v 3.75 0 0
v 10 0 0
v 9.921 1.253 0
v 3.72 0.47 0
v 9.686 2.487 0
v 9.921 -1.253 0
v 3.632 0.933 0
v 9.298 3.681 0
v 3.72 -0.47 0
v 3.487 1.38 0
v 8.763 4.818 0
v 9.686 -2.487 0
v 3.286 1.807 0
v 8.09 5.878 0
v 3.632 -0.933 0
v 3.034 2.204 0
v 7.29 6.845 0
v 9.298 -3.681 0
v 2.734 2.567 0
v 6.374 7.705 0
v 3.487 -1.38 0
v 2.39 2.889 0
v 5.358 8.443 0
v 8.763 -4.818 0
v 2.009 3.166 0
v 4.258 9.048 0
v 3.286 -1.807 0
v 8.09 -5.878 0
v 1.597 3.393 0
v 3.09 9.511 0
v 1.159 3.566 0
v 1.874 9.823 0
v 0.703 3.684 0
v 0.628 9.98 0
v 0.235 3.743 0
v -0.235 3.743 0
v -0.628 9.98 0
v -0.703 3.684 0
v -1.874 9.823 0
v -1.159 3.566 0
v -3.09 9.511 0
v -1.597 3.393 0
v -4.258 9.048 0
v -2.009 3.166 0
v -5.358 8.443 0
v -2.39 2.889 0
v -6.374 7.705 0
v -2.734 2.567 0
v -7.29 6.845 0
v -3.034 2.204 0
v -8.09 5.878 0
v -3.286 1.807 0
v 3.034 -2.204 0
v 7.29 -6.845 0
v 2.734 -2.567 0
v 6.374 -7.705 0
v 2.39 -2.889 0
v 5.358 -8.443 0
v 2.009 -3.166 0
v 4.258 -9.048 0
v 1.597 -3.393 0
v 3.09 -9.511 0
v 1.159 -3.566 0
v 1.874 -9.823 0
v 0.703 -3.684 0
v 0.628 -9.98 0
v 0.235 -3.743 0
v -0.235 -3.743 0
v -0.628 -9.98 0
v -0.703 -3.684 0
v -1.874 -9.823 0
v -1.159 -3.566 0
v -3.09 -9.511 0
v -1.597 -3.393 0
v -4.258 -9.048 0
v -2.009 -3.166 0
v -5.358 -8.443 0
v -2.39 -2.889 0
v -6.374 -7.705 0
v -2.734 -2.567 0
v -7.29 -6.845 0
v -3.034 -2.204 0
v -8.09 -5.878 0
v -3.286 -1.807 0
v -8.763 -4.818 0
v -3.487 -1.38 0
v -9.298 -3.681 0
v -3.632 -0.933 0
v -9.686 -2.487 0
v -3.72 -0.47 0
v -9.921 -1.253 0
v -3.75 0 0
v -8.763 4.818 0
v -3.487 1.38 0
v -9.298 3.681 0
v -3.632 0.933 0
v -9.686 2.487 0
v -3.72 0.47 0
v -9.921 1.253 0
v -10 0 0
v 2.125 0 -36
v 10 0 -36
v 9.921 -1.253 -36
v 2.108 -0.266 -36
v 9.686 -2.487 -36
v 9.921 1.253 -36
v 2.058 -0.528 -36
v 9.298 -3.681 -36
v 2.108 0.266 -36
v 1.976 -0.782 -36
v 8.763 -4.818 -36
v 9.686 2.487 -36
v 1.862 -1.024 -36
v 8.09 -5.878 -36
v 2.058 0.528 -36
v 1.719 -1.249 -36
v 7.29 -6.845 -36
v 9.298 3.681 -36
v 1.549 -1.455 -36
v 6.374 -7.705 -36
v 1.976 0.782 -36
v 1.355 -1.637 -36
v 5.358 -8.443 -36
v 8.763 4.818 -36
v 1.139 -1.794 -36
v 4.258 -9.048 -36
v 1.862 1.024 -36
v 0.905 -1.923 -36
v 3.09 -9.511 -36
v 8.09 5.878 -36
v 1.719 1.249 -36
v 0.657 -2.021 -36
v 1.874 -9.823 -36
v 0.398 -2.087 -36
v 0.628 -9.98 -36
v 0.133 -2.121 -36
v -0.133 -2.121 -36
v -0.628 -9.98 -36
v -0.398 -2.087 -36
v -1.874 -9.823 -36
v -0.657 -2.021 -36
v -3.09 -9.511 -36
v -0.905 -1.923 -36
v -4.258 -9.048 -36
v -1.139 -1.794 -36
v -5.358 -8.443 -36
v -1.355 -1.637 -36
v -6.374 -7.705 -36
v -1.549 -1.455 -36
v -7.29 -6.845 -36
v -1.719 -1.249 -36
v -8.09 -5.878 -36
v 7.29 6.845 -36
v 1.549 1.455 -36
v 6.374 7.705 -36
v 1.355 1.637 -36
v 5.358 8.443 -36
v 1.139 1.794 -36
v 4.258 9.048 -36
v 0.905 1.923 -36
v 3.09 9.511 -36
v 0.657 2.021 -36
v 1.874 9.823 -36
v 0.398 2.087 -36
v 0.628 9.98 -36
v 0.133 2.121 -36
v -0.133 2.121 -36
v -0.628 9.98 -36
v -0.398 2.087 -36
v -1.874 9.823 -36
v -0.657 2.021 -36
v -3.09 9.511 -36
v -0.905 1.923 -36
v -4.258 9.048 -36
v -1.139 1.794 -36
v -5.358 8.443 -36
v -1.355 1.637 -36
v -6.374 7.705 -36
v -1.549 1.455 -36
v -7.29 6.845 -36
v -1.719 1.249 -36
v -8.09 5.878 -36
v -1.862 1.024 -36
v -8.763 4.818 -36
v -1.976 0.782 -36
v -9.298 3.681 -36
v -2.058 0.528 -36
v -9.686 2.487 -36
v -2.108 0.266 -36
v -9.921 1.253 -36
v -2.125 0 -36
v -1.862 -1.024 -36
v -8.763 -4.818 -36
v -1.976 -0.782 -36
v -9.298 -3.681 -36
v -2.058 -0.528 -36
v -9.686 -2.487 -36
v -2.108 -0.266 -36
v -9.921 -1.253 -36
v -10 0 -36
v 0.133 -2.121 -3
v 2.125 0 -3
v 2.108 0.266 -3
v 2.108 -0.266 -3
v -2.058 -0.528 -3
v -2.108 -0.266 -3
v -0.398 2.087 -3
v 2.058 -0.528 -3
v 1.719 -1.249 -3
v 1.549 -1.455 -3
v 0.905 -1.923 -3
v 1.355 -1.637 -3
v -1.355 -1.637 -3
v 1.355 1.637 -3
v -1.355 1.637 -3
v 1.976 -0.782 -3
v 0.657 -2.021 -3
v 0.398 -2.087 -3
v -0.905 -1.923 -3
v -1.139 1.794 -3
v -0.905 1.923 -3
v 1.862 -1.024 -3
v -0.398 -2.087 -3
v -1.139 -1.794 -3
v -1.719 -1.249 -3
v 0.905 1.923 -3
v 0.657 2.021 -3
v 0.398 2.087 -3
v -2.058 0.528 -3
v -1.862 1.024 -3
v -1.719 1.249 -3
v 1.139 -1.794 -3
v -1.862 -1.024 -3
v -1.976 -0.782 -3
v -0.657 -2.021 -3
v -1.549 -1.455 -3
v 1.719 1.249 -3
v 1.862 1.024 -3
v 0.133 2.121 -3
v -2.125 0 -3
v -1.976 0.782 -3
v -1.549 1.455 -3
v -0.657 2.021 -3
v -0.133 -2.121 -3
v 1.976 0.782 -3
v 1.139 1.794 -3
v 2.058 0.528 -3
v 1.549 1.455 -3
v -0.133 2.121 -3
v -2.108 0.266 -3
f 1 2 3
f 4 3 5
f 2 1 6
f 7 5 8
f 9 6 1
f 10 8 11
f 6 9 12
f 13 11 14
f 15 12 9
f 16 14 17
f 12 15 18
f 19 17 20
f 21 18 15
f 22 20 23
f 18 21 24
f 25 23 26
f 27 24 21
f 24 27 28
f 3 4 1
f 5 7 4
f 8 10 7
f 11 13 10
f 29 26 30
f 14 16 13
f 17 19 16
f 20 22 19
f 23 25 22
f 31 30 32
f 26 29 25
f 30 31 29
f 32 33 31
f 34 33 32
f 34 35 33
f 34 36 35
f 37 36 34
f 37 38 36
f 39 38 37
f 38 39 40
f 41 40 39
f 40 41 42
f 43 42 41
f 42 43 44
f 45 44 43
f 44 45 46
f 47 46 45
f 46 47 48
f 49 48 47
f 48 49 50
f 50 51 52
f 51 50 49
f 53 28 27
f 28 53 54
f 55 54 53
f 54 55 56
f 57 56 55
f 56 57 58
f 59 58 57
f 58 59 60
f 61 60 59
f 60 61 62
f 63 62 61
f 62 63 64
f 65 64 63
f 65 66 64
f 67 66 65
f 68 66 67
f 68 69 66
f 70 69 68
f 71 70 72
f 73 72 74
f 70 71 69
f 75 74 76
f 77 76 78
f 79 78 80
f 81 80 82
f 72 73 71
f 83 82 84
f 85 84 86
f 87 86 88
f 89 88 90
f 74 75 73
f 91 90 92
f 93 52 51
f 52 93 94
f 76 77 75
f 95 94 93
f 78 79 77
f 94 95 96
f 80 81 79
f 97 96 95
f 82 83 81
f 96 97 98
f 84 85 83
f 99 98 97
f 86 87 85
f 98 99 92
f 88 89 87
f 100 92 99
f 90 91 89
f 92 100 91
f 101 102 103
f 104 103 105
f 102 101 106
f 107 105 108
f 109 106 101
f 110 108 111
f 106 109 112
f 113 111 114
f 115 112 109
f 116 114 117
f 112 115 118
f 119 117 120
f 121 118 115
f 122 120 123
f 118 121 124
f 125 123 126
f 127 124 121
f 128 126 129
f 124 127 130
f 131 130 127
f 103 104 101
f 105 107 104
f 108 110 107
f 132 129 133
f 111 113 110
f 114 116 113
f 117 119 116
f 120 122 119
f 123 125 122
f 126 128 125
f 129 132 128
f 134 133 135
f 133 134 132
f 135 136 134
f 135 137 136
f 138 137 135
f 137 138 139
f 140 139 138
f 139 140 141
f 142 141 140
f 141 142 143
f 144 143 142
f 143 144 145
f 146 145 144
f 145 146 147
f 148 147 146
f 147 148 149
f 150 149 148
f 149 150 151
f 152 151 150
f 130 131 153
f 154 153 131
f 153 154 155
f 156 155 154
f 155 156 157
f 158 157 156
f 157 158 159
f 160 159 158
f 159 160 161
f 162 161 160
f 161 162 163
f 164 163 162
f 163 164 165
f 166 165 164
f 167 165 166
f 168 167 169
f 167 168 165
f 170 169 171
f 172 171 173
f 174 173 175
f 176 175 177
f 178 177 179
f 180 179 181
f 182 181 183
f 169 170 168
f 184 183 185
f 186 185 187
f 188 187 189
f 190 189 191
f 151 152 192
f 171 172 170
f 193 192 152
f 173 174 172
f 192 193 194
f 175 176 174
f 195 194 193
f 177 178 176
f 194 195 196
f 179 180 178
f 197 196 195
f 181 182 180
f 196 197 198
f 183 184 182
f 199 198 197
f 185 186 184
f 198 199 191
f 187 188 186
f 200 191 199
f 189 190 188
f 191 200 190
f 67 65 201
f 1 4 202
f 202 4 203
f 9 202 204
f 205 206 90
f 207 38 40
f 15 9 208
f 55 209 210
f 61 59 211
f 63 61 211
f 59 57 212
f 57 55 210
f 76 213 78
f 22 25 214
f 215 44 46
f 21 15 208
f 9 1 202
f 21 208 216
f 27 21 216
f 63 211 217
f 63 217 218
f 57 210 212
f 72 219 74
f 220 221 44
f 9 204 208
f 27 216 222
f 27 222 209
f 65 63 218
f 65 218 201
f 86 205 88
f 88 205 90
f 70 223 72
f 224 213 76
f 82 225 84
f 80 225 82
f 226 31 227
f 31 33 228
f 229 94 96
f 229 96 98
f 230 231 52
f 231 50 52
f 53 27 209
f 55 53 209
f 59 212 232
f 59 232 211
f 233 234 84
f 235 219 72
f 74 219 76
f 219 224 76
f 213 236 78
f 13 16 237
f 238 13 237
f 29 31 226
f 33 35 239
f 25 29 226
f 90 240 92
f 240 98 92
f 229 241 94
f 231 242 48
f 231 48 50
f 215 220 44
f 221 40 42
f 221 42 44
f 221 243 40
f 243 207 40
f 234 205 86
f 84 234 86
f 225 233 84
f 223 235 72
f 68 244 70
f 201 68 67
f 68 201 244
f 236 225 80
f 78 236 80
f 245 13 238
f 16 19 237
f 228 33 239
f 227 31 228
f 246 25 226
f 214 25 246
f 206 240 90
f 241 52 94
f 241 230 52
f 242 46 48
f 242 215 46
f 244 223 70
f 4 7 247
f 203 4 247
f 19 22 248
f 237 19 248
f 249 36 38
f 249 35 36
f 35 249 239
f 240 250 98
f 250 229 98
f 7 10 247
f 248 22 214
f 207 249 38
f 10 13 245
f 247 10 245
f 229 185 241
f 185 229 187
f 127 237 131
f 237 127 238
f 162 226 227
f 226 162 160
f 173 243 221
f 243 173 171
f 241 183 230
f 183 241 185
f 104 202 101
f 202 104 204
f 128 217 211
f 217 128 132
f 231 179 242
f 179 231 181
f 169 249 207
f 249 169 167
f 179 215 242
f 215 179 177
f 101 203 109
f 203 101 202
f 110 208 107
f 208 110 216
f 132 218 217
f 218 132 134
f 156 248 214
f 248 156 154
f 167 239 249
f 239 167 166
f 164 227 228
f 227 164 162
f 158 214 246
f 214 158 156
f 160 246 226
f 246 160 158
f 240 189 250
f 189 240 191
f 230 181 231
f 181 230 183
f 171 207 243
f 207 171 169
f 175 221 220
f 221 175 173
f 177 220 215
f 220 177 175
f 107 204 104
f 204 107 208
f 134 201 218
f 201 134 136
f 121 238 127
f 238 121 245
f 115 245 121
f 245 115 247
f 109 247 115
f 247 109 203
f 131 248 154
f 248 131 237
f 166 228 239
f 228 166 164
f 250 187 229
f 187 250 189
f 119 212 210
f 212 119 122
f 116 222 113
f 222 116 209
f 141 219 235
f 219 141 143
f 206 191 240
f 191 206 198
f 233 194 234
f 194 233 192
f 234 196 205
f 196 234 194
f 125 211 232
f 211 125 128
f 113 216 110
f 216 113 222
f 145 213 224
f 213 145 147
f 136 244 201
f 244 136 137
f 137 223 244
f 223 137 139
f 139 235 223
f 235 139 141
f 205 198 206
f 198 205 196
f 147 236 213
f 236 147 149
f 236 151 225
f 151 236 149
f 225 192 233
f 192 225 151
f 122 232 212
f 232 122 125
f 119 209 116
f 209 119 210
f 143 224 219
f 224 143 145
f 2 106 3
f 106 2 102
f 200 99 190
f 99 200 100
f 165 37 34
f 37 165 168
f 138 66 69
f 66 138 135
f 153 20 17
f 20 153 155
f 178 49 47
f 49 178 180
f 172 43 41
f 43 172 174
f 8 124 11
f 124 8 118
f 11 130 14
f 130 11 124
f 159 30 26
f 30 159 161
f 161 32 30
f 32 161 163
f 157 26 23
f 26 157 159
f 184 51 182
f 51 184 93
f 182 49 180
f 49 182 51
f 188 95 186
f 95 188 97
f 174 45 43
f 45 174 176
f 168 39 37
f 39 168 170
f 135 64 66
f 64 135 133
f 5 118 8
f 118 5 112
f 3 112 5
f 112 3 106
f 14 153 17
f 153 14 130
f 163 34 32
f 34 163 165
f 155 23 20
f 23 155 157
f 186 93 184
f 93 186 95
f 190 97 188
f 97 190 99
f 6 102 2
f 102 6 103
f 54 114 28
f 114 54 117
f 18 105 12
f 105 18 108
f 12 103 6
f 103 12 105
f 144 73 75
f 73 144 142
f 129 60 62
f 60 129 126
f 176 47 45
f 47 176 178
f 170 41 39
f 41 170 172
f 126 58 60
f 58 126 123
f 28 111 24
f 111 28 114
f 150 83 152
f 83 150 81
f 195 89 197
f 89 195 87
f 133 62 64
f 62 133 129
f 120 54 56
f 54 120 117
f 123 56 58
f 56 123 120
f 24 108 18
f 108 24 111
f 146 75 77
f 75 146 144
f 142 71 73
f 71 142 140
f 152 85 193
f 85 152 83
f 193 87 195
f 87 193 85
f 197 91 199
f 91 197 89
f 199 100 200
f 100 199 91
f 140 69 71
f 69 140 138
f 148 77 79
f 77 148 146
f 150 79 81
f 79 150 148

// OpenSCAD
$fn = 50;


difference() {
	union() {
		translate(v = [0, 0, -36.0000000000]) {
			cylinder(h = 36, r = 10.0000000000);
		}
		cylinder(h = 0, r = 20.0000000000);
	}
	union() {
		translate(v = [0, 0, 0]) {
			rotate(a = [0, 0, 0]) {
				difference() {
					union() {
						#translate(v = [0, 0, -36.0000000000]) {
							cylinder(h = 36, r = 2.0000000000);
						}
						#translate(v = [0, 0, -3]) {
							cylinder(h = 3, r = 10.0000000000, r1 = 2.1250000000, r2 = 3.7500000000);
						}
						#translate(v = [0, 0, -36.0000000000]) {
							cylinder(h = 36, r = 2.1250000000);
						}
						#translate(v = [0, 0, -36.0000000000]) {
							cylinder(h = 36, r = 2.0000000000);
						}
					}
					union();
				}
			}
		}
	}
}
